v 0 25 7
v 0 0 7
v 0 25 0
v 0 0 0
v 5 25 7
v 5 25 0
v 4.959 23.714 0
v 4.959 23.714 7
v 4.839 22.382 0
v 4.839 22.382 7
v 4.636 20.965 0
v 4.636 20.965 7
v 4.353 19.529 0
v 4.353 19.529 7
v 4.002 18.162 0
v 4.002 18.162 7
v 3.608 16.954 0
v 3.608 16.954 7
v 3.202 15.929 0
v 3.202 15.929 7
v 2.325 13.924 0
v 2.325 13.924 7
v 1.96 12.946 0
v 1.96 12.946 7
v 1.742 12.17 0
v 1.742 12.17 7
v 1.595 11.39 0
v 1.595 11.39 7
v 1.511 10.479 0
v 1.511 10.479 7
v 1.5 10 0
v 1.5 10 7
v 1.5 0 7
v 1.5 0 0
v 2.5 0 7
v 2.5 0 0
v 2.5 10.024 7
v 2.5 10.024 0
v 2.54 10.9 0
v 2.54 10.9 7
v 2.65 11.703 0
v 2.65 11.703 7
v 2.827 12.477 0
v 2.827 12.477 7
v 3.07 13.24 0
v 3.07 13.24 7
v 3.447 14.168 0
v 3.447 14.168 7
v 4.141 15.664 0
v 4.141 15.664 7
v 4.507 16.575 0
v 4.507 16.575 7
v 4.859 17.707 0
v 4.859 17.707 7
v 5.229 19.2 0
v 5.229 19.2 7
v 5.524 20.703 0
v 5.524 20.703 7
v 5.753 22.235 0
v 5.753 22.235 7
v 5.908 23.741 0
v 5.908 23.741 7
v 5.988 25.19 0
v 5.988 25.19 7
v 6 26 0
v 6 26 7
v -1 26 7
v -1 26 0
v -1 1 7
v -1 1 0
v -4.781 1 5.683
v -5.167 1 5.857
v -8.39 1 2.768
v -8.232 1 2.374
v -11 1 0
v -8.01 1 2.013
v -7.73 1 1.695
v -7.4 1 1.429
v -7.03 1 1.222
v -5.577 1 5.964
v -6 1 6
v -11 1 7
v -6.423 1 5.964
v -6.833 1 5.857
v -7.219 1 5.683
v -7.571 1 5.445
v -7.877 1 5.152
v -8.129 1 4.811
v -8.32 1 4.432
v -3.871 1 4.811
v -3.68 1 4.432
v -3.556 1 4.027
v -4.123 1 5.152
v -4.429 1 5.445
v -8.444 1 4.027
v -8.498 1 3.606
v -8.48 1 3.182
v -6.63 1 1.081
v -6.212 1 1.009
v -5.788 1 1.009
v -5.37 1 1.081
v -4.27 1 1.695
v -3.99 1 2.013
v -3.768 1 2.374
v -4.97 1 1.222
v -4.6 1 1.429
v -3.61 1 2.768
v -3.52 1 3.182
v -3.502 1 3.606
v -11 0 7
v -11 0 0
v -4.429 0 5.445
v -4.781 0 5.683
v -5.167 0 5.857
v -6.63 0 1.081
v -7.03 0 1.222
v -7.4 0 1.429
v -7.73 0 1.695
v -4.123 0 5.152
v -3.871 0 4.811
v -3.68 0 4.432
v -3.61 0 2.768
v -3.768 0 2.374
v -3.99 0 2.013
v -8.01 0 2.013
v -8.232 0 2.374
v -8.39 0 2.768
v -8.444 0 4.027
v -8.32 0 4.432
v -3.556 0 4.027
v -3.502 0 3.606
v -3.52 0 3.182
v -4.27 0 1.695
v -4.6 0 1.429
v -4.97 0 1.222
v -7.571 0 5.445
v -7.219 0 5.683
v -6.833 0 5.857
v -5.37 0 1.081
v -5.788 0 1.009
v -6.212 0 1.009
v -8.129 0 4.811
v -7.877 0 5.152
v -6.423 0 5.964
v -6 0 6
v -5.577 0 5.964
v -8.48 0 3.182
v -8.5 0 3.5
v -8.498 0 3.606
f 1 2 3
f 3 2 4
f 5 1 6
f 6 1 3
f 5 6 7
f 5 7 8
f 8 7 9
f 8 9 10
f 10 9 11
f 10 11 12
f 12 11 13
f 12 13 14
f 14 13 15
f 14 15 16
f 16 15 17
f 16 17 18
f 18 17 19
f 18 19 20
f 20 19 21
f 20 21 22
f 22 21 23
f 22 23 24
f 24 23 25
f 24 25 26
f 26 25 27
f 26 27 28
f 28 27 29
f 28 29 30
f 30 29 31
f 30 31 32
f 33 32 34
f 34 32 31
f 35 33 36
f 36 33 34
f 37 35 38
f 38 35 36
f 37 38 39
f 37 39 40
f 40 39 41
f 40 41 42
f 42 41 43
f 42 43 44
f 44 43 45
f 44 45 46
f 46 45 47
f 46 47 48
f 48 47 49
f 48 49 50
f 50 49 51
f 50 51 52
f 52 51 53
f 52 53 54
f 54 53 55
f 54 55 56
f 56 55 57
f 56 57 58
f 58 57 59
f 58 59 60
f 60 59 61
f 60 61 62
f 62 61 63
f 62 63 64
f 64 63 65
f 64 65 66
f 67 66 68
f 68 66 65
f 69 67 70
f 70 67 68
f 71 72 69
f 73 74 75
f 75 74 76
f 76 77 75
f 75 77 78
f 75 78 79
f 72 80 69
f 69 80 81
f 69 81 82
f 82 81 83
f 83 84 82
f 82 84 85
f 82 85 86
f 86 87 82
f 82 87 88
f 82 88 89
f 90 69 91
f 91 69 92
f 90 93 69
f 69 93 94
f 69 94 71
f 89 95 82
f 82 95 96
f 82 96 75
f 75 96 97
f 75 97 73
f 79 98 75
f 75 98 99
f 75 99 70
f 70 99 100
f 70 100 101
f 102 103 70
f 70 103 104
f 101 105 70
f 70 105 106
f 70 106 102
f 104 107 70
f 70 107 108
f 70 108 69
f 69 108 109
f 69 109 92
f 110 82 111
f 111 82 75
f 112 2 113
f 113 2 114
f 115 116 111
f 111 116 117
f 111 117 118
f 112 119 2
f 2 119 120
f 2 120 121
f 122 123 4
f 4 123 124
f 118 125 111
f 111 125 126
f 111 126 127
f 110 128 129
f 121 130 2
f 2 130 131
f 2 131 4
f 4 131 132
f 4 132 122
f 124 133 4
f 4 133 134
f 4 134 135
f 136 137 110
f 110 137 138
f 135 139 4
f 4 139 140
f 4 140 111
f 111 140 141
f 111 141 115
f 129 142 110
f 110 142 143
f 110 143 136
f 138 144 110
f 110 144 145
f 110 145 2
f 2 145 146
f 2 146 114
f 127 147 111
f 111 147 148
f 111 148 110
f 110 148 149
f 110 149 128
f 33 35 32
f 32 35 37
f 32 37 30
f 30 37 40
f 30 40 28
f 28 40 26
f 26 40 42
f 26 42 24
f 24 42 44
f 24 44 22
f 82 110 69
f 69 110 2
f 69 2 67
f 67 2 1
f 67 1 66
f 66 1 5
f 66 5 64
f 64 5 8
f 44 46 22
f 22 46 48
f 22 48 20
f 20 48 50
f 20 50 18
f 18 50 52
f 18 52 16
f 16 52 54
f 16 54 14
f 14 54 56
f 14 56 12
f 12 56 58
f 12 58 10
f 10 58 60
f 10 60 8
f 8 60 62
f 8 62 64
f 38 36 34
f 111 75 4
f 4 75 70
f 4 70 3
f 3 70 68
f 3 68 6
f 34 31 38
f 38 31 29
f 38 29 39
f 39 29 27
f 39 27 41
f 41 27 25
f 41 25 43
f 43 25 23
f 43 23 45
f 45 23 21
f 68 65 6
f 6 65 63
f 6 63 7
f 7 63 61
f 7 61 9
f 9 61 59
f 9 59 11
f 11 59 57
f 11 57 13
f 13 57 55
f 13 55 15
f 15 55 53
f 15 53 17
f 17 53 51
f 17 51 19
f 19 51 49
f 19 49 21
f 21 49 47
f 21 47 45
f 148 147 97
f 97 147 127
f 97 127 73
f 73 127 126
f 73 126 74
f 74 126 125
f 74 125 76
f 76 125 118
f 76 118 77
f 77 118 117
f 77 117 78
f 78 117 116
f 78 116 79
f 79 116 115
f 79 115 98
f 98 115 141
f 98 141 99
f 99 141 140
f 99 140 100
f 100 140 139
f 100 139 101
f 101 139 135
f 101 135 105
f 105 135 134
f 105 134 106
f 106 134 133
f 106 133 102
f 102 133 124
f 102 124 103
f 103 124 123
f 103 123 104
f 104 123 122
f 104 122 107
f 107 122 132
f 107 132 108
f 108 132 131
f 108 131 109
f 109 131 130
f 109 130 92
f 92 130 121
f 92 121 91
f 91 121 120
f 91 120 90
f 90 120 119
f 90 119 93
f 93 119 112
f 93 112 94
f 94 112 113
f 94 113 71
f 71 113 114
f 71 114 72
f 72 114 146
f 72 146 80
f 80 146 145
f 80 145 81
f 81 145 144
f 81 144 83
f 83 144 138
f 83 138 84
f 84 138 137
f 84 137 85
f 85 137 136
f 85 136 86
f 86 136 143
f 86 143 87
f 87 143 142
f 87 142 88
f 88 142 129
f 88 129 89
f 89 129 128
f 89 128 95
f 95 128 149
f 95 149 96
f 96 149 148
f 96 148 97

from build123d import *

# Parameters (mm, degrees)
BOSS_EXTRUDE1_DEPTH = 7
SKETCH5_R           = 2.5
CUT_EXTRUDE1_DEPTH  = 7


with BuildPart() as part:
    # Sketch1 → Boss-Extrude1 (new body)
    with BuildSketch(Plane.XY):
        with BuildLine():
            Line((0, 0), (0, 25))
            Line((0, 25), (5, 25))
            add(Edge.make_bspline(
                [(5, 25), (5, 22.505160854), (3.775153637, 15.544027487), (1.5, 13.160240213), (1.5, 10)],
                knots=[0, 0, 0, 0, 0.413095148, 1, 1, 1, 1], degree=3))
            Line((1.5, 10), (1.5, 0))
            Line((1.5, 0), (2.5, 0))
            Line((2.5, 0), (2.5, 10.023972807))
            add(Edge.make_bspline(
                [(6, 26), (6, 22.322385343), (5.041275268, 17.971400198), (3.790776866, 14.65259624), (2.5, 12.696926019), (2.5, 10.023972807)],
                knots=[0, 0, 0, 0, 0.426693592, 0.526693592, 1, 1, 1, 1], degree=3))
            Line((6, 26), (-1, 26))
            Line((-1, 26), (-1, 1))
            Line((-1, 1), (-11, 1))
            Line((-11, 1), (-11, 0))
            Line((-11, 0), (-1, 0))
            Line((-1, 0), (0, 0))
        make_face()
    extrude(amount=BOSS_EXTRUDE1_DEPTH)

    # Sketch5 → Cut-Extrude1 (cut)
    with BuildSketch(Plane(origin=(0, 1, 0), x_dir=(1, 0, 0), z_dir=(0, 1, 0))):
        with Locations(Location((-6, -3.5, 0), (0, 0, 270))):
            Circle(SKETCH5_R)
    extrude(amount=-CUT_EXTRUDE1_DEPTH, mode=Mode.SUBTRACT)


solid = part.part
